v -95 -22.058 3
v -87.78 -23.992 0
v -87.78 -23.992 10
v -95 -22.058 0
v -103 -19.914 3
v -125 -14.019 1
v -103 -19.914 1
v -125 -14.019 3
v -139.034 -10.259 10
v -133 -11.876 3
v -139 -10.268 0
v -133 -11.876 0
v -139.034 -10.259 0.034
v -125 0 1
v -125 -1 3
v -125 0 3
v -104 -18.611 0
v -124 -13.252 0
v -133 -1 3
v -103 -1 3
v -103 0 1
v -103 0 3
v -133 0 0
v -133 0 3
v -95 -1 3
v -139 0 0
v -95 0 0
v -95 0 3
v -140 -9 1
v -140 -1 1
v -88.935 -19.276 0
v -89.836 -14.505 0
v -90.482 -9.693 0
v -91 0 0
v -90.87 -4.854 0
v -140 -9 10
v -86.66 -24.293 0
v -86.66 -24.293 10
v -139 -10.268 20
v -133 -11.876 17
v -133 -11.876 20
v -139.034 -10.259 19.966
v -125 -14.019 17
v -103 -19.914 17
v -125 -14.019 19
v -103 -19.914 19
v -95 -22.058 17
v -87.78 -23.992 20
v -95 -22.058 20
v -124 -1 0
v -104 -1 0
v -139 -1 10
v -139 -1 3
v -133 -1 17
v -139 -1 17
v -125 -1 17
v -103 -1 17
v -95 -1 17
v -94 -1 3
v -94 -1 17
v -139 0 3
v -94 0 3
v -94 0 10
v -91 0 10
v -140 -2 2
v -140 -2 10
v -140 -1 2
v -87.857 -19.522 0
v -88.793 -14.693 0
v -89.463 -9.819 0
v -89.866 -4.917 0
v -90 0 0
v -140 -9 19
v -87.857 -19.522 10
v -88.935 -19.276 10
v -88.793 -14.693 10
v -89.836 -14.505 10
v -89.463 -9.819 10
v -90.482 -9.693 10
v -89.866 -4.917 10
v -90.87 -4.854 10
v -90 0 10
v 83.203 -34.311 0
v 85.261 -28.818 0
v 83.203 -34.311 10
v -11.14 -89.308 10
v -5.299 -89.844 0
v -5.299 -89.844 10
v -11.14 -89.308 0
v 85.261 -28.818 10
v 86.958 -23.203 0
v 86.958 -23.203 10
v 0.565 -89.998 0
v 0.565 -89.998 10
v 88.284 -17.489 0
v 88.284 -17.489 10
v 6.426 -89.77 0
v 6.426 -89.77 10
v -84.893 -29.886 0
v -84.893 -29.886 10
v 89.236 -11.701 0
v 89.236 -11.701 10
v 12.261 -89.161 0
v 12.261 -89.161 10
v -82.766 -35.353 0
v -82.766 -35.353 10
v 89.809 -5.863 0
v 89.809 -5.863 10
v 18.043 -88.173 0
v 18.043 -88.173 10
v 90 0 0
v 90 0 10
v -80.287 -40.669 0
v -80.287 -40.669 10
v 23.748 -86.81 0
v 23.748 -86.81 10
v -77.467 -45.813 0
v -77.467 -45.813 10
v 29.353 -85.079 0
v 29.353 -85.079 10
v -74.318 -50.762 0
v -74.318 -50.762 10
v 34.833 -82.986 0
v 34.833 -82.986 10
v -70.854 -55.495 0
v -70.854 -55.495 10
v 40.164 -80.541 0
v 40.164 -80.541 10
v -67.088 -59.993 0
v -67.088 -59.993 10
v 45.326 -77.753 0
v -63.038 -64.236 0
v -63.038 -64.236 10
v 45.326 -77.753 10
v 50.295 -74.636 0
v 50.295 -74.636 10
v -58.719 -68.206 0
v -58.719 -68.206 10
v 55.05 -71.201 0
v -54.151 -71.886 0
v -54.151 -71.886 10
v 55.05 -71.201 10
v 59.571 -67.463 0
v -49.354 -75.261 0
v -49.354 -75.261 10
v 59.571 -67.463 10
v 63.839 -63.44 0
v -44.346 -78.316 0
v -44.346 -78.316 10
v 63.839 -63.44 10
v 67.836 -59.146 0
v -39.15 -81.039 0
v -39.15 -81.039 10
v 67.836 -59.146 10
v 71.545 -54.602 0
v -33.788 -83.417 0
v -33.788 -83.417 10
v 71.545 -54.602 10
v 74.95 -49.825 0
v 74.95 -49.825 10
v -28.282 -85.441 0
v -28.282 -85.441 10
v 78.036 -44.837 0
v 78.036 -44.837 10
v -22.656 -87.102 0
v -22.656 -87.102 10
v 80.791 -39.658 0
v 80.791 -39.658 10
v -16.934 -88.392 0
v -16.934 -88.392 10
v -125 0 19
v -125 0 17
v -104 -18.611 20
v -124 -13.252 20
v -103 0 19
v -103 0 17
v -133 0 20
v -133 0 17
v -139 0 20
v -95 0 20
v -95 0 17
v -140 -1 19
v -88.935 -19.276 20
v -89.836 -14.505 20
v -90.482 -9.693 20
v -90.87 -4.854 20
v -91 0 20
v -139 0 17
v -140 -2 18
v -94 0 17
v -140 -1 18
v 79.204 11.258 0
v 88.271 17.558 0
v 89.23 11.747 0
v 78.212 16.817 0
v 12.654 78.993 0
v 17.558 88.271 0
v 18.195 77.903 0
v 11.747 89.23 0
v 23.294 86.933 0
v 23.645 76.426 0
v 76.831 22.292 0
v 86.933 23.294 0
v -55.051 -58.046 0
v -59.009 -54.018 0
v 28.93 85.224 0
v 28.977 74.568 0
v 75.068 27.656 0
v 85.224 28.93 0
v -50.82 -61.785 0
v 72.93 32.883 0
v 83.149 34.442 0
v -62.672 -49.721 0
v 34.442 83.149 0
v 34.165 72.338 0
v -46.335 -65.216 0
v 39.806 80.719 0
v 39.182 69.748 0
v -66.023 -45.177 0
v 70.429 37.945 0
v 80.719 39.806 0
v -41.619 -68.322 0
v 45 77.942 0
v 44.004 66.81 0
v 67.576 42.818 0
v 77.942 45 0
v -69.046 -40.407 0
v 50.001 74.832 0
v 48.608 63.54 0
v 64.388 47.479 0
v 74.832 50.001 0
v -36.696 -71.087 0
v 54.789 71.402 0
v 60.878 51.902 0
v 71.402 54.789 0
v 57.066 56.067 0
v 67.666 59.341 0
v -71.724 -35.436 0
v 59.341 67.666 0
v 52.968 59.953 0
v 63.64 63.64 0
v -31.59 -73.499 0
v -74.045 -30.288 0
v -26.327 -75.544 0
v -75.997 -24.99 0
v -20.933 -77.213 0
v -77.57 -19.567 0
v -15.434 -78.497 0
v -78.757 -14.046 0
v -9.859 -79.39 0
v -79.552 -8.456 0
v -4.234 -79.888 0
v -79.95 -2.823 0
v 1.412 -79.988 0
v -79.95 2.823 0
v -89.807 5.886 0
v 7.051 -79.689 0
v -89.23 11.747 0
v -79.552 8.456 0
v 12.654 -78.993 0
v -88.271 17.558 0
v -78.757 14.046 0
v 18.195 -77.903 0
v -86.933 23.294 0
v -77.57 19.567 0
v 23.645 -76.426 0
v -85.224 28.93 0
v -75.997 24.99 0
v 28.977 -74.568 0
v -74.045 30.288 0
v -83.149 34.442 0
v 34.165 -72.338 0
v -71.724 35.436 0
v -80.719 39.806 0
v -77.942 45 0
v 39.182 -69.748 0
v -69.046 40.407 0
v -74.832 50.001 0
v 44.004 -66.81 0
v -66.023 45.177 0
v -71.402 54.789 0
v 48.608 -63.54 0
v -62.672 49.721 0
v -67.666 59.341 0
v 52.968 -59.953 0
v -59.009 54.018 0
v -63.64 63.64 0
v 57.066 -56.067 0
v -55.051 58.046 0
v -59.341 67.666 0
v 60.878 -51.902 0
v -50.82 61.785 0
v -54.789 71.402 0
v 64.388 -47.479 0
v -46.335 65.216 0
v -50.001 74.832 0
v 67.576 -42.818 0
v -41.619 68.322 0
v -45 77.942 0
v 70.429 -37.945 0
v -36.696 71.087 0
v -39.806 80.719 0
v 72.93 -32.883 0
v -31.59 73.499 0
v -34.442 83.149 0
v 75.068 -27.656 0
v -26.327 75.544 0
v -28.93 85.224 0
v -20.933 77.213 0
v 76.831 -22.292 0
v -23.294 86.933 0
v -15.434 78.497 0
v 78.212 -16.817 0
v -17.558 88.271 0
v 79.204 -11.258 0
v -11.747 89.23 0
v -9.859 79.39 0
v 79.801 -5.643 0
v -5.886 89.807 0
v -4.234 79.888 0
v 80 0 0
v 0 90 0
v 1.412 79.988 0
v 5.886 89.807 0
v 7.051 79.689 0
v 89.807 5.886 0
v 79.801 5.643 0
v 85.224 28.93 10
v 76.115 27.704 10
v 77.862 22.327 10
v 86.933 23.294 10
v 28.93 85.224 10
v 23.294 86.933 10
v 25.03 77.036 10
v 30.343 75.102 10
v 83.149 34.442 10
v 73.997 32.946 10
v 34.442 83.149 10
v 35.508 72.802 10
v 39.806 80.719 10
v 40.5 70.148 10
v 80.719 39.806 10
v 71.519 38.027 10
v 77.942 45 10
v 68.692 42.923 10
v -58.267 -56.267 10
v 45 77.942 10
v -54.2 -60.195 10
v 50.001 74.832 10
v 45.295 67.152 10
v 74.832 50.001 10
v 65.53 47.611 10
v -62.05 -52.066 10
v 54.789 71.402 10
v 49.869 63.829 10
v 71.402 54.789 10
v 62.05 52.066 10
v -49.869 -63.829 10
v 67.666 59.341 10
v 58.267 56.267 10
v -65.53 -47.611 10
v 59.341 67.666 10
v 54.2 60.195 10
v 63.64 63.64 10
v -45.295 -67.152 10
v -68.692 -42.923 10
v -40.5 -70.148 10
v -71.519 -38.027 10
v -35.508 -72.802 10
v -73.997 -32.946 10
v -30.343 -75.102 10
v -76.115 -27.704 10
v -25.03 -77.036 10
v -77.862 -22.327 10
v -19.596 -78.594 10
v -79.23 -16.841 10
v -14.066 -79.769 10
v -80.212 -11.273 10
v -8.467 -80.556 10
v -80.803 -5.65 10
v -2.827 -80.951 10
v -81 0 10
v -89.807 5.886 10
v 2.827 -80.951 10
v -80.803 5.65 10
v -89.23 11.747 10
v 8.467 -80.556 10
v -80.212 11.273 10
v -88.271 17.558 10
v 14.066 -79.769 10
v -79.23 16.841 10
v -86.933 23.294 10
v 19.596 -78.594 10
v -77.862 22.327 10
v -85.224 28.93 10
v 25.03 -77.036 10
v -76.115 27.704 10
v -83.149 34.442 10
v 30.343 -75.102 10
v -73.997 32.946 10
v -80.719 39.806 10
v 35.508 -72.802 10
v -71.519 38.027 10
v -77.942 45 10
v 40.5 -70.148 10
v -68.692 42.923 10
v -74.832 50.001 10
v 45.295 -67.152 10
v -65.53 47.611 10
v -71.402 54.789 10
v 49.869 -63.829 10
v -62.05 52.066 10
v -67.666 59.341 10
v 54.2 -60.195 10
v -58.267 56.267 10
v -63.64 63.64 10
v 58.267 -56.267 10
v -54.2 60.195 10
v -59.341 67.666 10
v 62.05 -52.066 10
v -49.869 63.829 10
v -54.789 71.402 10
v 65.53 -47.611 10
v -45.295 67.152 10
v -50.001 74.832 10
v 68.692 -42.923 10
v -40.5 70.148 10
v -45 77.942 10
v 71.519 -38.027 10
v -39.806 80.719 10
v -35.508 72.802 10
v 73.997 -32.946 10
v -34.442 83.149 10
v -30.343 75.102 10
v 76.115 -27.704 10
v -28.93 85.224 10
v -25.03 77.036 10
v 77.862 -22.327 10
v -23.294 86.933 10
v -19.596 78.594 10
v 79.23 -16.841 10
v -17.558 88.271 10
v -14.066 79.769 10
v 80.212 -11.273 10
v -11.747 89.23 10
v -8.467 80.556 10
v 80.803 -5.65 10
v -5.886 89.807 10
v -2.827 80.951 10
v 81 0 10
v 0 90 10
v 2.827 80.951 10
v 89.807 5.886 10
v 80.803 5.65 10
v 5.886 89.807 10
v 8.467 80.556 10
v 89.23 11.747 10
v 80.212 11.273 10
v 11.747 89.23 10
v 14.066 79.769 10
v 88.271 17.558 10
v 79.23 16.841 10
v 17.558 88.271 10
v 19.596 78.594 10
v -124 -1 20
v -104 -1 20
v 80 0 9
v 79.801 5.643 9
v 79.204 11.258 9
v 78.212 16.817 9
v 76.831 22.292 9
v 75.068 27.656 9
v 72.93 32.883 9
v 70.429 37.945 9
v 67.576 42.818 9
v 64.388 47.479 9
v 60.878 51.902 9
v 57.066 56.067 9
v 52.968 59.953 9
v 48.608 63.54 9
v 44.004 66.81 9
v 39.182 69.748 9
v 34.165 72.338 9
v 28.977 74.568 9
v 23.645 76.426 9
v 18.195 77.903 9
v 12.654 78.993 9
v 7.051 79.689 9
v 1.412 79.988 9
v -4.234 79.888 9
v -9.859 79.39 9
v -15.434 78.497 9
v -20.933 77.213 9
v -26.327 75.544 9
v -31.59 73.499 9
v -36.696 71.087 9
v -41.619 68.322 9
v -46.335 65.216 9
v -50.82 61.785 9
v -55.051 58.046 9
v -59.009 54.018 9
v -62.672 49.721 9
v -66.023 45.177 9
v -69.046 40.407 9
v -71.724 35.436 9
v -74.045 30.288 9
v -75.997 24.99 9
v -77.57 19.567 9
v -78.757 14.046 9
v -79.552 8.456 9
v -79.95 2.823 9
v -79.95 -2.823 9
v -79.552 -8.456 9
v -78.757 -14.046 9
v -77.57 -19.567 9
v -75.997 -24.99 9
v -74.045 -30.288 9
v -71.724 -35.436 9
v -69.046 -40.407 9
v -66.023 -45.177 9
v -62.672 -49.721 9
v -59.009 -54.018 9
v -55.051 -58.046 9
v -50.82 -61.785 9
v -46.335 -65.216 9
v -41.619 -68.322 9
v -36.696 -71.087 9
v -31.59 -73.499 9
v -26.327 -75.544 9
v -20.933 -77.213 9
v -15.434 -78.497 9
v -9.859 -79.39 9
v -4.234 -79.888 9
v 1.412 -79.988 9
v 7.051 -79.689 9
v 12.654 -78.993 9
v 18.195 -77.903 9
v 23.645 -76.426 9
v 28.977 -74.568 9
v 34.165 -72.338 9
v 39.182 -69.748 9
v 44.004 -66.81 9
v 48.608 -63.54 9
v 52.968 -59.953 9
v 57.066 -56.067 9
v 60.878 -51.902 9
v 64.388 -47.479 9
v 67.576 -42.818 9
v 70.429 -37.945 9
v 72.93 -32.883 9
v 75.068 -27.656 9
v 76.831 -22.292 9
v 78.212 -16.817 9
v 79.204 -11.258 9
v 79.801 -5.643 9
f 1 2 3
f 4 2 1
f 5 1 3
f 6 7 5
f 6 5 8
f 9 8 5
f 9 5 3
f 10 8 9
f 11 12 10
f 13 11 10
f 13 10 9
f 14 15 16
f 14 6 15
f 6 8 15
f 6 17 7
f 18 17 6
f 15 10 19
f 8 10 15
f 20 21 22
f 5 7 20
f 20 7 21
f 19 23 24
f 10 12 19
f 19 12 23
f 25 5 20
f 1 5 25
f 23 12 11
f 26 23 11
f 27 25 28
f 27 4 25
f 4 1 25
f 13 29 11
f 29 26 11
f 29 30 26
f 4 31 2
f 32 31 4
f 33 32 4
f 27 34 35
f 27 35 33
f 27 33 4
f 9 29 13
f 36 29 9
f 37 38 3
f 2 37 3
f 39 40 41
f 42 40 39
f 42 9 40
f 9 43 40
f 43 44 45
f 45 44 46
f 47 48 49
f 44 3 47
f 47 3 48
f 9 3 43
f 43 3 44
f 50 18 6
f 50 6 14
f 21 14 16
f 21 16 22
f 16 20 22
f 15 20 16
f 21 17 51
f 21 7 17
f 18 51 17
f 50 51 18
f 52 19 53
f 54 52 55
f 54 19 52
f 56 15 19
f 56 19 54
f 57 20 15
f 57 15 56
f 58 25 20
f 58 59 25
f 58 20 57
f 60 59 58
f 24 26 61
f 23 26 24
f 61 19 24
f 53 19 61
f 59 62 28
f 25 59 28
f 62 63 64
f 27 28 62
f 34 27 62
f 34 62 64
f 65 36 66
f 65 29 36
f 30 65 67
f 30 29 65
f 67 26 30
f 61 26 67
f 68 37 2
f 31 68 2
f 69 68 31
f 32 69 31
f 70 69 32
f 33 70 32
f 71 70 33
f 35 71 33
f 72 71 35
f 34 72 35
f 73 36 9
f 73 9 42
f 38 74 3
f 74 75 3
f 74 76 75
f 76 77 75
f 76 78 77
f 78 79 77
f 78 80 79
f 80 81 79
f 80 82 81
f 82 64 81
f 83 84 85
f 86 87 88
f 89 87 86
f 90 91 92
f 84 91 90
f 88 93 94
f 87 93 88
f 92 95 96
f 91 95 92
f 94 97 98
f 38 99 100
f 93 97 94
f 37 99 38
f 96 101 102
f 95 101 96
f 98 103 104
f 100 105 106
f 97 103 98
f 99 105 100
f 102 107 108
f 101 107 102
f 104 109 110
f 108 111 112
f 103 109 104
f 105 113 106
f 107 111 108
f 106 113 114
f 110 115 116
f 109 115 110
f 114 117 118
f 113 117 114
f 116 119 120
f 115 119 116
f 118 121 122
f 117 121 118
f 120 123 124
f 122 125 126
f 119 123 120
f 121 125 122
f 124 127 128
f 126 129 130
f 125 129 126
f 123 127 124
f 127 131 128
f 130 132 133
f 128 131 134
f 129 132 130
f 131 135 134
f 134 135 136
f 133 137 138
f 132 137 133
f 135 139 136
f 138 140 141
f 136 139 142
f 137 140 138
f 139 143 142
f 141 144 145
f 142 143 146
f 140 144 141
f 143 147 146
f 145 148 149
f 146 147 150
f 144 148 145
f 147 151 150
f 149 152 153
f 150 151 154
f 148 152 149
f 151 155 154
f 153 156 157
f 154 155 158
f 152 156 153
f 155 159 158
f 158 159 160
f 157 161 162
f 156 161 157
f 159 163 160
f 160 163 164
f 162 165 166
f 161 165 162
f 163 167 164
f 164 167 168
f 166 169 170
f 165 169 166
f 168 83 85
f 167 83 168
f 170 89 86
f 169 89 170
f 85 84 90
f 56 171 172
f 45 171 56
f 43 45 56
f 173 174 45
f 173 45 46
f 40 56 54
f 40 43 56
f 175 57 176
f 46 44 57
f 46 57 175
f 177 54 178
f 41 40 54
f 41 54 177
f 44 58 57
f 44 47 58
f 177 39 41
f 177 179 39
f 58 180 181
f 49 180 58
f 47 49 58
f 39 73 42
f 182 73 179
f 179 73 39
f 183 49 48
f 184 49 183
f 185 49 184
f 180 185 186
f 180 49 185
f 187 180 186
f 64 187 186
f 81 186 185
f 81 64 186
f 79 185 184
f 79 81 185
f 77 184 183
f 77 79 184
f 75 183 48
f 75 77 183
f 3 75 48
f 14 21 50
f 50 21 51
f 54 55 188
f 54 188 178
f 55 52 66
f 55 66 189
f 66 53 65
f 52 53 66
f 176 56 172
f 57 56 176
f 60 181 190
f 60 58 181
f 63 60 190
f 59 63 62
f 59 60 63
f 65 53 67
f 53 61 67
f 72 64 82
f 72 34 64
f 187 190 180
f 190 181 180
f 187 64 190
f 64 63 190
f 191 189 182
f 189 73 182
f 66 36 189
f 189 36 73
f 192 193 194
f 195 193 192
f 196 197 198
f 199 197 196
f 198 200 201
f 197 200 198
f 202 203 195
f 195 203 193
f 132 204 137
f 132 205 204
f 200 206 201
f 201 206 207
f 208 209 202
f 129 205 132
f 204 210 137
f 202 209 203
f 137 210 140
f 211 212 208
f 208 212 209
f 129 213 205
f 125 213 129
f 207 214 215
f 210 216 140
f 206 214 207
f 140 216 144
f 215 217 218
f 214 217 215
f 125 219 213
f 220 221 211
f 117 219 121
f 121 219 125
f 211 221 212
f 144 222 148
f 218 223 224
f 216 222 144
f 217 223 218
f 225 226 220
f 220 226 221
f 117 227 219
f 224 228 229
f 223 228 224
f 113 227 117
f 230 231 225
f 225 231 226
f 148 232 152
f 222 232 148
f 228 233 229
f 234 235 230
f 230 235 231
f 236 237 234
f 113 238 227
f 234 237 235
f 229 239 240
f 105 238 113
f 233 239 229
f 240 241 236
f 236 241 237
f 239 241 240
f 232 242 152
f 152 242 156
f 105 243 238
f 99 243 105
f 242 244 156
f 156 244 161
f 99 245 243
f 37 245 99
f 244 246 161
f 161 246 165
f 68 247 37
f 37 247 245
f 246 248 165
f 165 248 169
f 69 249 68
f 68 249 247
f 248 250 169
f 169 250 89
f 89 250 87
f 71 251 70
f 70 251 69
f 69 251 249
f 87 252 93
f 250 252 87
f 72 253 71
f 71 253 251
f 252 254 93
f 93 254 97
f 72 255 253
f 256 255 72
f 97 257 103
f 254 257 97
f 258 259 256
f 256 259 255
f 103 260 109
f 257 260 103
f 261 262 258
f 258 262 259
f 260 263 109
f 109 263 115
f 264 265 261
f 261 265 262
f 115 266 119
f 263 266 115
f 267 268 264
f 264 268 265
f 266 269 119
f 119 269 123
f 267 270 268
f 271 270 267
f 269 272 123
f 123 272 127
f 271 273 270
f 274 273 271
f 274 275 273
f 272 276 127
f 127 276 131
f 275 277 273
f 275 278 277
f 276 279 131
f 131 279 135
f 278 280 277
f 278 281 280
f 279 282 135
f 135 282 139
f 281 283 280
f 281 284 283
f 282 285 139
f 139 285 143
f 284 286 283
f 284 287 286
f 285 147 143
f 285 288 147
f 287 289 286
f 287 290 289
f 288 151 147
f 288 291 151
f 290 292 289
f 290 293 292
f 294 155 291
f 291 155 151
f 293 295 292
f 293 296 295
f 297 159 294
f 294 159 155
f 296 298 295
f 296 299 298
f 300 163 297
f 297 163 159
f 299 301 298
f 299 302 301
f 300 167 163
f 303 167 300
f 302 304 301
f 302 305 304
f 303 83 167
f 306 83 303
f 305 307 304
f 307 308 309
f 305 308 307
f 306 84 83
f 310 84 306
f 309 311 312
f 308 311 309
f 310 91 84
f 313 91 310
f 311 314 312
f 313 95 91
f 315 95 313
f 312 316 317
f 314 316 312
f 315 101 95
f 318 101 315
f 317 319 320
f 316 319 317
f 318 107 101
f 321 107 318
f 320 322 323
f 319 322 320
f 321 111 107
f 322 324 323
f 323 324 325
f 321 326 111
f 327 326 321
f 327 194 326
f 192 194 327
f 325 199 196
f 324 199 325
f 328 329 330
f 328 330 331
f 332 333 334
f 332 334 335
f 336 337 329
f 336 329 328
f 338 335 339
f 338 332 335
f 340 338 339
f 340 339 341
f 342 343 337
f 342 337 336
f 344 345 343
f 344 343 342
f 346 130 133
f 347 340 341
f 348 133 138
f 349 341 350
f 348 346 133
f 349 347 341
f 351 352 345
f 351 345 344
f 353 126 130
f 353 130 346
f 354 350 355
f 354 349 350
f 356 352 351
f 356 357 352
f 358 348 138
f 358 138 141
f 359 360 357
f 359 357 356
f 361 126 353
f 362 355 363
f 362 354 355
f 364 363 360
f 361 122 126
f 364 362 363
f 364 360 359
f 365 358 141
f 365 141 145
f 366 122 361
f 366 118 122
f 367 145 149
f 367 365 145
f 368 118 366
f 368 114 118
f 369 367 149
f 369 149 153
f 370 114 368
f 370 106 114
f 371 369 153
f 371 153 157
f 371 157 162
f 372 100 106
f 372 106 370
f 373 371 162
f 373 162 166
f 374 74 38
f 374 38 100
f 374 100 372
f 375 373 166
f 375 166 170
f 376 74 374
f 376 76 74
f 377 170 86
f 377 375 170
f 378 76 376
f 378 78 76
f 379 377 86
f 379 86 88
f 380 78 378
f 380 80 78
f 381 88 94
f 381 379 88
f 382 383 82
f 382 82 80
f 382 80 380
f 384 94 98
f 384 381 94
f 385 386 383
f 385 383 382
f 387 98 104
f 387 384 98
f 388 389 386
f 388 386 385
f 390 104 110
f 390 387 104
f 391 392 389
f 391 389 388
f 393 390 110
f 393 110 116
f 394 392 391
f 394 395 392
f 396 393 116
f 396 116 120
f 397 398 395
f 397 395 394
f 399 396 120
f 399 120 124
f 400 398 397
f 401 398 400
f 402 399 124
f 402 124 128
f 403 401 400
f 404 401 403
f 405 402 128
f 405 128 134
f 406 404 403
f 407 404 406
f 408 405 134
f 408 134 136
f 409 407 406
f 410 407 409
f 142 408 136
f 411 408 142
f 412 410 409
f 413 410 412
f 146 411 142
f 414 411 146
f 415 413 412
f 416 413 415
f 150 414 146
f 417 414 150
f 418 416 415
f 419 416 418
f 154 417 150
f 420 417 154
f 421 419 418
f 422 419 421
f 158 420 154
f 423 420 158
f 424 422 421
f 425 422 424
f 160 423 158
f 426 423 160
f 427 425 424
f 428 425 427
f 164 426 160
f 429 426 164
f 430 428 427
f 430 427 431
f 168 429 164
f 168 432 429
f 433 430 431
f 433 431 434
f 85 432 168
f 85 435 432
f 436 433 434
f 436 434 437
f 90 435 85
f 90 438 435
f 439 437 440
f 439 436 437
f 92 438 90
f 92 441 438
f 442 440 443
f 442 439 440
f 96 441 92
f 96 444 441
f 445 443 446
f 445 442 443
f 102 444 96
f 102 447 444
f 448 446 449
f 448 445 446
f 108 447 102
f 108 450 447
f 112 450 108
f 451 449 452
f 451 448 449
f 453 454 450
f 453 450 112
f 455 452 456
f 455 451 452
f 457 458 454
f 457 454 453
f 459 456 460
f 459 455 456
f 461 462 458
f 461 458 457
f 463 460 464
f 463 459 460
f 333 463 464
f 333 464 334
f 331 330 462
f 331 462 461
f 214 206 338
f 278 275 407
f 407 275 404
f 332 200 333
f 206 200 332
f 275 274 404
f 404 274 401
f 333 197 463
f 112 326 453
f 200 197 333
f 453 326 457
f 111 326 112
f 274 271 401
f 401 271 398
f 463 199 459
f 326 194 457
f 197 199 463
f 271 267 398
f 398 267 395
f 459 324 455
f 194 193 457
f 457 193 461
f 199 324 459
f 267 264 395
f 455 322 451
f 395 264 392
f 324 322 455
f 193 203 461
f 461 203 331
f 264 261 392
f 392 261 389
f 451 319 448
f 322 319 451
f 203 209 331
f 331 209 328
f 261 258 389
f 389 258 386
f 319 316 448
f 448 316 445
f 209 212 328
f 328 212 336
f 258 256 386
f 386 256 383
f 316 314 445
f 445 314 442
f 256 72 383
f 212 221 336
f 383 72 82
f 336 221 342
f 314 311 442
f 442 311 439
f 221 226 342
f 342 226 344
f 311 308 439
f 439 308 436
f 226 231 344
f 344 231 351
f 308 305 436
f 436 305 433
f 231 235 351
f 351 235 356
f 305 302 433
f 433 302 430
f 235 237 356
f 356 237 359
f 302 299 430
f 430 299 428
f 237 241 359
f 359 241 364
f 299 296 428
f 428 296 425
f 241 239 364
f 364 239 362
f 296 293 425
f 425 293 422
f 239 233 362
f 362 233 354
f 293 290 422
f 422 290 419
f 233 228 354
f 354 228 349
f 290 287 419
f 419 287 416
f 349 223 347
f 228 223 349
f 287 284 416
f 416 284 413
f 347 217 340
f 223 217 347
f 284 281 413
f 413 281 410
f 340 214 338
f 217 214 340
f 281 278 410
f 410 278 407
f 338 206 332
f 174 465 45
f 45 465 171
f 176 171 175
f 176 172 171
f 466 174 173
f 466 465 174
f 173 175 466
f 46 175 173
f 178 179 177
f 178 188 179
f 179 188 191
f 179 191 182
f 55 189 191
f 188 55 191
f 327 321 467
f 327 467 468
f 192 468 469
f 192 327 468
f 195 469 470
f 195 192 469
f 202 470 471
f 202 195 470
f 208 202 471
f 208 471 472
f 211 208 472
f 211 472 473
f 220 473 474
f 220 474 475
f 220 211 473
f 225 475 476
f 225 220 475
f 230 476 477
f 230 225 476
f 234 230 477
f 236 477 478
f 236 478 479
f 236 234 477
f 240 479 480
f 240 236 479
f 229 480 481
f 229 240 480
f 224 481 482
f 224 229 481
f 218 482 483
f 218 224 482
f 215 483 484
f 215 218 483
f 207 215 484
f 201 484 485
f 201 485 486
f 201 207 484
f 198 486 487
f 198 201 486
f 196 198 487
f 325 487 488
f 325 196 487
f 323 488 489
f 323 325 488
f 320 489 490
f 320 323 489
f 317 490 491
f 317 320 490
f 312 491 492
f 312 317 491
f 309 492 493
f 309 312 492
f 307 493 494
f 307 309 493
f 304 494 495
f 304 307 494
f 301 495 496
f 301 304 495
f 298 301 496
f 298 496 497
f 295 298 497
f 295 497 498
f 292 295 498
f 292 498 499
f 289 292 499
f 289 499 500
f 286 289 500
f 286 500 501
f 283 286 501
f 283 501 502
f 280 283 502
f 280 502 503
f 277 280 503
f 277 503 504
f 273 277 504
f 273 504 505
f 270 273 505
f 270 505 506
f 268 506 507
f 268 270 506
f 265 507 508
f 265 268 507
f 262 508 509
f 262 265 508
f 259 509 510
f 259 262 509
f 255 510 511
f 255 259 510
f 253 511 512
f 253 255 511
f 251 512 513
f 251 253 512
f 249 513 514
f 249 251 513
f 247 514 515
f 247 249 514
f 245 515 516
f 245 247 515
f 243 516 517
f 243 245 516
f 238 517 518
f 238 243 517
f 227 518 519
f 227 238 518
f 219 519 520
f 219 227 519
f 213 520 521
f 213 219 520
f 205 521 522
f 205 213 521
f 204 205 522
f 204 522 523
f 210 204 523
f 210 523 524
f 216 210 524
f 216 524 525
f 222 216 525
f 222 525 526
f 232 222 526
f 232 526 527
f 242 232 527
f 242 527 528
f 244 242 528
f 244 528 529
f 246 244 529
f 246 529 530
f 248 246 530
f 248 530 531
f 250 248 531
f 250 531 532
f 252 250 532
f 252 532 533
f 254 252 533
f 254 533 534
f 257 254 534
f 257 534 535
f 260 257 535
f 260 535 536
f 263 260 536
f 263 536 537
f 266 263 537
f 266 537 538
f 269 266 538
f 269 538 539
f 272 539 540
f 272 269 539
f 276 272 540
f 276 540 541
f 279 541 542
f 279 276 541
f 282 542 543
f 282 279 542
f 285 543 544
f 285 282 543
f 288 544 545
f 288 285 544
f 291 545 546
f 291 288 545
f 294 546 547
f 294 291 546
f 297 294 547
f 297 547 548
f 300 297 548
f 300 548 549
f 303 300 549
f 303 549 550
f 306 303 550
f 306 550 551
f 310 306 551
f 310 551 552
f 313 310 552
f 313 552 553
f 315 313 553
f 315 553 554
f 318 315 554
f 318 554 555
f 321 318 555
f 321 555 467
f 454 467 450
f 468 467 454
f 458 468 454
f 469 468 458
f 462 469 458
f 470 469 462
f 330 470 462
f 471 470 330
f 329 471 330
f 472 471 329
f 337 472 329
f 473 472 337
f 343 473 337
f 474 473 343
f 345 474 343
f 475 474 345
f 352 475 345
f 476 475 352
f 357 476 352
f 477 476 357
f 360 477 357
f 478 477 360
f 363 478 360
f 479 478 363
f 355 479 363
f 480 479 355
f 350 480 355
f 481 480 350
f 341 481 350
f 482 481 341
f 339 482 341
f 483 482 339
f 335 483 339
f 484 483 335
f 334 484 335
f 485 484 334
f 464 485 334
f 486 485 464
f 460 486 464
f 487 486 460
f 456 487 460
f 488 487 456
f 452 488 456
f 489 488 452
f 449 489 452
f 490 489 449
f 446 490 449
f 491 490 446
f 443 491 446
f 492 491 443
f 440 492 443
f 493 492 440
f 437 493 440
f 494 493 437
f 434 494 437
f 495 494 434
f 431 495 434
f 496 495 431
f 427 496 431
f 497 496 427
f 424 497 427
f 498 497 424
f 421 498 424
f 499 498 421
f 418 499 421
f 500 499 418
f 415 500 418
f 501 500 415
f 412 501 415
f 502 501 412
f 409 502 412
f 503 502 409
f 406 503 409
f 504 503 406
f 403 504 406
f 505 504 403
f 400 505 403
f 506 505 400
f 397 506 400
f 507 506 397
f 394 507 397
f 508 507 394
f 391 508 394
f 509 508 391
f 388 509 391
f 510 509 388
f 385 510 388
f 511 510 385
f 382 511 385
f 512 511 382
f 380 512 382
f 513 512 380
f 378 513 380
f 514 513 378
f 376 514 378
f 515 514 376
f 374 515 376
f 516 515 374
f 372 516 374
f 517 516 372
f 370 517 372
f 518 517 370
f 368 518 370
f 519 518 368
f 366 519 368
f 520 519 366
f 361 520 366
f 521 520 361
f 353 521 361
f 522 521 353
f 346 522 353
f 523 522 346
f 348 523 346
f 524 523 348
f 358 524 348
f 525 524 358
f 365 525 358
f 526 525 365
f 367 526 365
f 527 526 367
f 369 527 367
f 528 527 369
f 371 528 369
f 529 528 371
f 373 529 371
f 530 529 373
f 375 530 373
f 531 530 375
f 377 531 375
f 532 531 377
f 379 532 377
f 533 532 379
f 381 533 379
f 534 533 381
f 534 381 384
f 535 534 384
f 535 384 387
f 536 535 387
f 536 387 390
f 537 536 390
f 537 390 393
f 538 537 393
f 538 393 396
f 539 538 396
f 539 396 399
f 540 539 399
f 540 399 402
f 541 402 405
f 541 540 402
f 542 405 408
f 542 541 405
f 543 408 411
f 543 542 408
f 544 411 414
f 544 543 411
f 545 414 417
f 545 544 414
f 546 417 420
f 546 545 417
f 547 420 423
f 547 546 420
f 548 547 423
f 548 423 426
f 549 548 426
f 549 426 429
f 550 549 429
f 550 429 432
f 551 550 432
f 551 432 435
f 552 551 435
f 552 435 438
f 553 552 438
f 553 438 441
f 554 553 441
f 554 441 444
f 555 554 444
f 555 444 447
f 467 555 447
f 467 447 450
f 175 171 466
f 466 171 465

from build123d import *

# Parameters (mm, degrees)
SKETCH_R        = 90
SKETCH_R_2      = 80
PAD_DEPTH       = 10
PAD001_DEPTH    = 10
PAD002_DEPTH    = 20
SKETCH003_W     = 8
SKETCH003_H     = 3
POCKET_DEPTH    = 26
SKETCH005_W     = 46
SKETCH005_H     = 14
POCKET001_DEPTH = 1
CHAMFER_SIZE    = 1
CHAMFER001_SIZE = 1
CHAMFER002_SIZE = 1
CHAMFER003_SIZE = 1


with BuildPart() as part:
    # Sketch → Pad (new body)
    with BuildSketch(Plane.XY):
        Circle(SKETCH_R)
        Circle(SKETCH_R_2, mode=Mode.SUBTRACT)
    extrude(amount=PAD_DEPTH)

    # Sketch001 → Pad001 (join)
    with BuildSketch(Plane.XY):
        with BuildLine():
            Line((-86.659521, -24.292538), (-140, -10))
            Line((-140, -10), (-140, 0))
            Line((-140, 0), (-90, 0))
            ThreePointArc((-90, 0), (-89.160969, -12.260569), (-86.659521, -24.292538))
        make_face()
    extrude(amount=PAD001_DEPTH)

    # Sketch002 → Pad002 (join)
    with BuildSketch(Plane.XY):
        with BuildLine():
            Line((-91, 0), (-140, 0))
            Line((-140, 0), (-140, -10))
            Line((-140, -10), (-87.780251, -23.99224))
            ThreePointArc((-91, 0), (-90.191471, -12.10366), (-87.780251, -23.99224))
        make_face()
    extrude(amount=PAD002_DEPTH)

    # Sketch003 → Pocket (cut, symmetric)
    with BuildSketch(Plane.XZ):
        with Locations((-129, 18.5)):
            Rectangle(SKETCH003_W, SKETCH003_H)
        with Locations((-99, 18.5)):
            Rectangle(SKETCH003_W, SKETCH003_H)
        with Locations((-129, 1.5)):
            Rectangle(SKETCH003_W, SKETCH003_H)
        with Locations((-99, 1.5)):
            Rectangle(SKETCH003_W, SKETCH003_H)
    extrude(amount=POCKET_DEPTH, both=True, mode=Mode.SUBTRACT)

    # Sketch005 → Pocket001 (cut, symmetric)
    with BuildSketch(Plane.XZ):
        with Locations((-117, 10)):
            Rectangle(SKETCH005_W, SKETCH005_H)
    extrude(amount=POCKET001_DEPTH, both=True, mode=Mode.SUBTRACT)

    # Chamfer
    chamfer_edges = [part.edges().sort_by_distance(p)[0] for p in [
        (-80, 0, 10),
    ]]
    chamfer(chamfer_edges, length=CHAMFER_SIZE)

    # Chamfer001
    chamfer001_edges = [part.edges().sort_by_distance(p)[0] for p in [
        (-140, -10, 15),
        (-140, -5, 20),
        (-140, 0, 18.5),
        (-140, -0.5, 17),
        (-140, -1, 13.5),
        (-140, -5.5, 10),
        (-140, -5, 0),
        (-140, 0, 1.5),
        (-140, -0.5, 3),
        (-140, -1, 6.5),
        (-140, -10, 5),
    ]]
    chamfer(chamfer001_edges, length=CHAMFER001_SIZE)

    # Chamfer002
    chamfer002_edges = [part.edges().sort_by_distance(p)[0] for p in [
        (-103, -9.95706, 20),
        (-114, -16.966679, 20),
        (-125, -7.009619, 20),
        (-114, 0, 20),
    ]]
    chamfer(chamfer002_edges, length=CHAMFER002_SIZE)

    # Chamfer003
    chamfer003_edges = [part.edges().sort_by_distance(p)[0] for p in [
        (-114, 0, 0),
        (-125, -7.009619, 0),
        (-114, -16.966679, 0),
        (-103, -9.95706, 0),
    ]]
    chamfer(chamfer003_edges, length=CHAMFER003_SIZE)


solid = part.part
